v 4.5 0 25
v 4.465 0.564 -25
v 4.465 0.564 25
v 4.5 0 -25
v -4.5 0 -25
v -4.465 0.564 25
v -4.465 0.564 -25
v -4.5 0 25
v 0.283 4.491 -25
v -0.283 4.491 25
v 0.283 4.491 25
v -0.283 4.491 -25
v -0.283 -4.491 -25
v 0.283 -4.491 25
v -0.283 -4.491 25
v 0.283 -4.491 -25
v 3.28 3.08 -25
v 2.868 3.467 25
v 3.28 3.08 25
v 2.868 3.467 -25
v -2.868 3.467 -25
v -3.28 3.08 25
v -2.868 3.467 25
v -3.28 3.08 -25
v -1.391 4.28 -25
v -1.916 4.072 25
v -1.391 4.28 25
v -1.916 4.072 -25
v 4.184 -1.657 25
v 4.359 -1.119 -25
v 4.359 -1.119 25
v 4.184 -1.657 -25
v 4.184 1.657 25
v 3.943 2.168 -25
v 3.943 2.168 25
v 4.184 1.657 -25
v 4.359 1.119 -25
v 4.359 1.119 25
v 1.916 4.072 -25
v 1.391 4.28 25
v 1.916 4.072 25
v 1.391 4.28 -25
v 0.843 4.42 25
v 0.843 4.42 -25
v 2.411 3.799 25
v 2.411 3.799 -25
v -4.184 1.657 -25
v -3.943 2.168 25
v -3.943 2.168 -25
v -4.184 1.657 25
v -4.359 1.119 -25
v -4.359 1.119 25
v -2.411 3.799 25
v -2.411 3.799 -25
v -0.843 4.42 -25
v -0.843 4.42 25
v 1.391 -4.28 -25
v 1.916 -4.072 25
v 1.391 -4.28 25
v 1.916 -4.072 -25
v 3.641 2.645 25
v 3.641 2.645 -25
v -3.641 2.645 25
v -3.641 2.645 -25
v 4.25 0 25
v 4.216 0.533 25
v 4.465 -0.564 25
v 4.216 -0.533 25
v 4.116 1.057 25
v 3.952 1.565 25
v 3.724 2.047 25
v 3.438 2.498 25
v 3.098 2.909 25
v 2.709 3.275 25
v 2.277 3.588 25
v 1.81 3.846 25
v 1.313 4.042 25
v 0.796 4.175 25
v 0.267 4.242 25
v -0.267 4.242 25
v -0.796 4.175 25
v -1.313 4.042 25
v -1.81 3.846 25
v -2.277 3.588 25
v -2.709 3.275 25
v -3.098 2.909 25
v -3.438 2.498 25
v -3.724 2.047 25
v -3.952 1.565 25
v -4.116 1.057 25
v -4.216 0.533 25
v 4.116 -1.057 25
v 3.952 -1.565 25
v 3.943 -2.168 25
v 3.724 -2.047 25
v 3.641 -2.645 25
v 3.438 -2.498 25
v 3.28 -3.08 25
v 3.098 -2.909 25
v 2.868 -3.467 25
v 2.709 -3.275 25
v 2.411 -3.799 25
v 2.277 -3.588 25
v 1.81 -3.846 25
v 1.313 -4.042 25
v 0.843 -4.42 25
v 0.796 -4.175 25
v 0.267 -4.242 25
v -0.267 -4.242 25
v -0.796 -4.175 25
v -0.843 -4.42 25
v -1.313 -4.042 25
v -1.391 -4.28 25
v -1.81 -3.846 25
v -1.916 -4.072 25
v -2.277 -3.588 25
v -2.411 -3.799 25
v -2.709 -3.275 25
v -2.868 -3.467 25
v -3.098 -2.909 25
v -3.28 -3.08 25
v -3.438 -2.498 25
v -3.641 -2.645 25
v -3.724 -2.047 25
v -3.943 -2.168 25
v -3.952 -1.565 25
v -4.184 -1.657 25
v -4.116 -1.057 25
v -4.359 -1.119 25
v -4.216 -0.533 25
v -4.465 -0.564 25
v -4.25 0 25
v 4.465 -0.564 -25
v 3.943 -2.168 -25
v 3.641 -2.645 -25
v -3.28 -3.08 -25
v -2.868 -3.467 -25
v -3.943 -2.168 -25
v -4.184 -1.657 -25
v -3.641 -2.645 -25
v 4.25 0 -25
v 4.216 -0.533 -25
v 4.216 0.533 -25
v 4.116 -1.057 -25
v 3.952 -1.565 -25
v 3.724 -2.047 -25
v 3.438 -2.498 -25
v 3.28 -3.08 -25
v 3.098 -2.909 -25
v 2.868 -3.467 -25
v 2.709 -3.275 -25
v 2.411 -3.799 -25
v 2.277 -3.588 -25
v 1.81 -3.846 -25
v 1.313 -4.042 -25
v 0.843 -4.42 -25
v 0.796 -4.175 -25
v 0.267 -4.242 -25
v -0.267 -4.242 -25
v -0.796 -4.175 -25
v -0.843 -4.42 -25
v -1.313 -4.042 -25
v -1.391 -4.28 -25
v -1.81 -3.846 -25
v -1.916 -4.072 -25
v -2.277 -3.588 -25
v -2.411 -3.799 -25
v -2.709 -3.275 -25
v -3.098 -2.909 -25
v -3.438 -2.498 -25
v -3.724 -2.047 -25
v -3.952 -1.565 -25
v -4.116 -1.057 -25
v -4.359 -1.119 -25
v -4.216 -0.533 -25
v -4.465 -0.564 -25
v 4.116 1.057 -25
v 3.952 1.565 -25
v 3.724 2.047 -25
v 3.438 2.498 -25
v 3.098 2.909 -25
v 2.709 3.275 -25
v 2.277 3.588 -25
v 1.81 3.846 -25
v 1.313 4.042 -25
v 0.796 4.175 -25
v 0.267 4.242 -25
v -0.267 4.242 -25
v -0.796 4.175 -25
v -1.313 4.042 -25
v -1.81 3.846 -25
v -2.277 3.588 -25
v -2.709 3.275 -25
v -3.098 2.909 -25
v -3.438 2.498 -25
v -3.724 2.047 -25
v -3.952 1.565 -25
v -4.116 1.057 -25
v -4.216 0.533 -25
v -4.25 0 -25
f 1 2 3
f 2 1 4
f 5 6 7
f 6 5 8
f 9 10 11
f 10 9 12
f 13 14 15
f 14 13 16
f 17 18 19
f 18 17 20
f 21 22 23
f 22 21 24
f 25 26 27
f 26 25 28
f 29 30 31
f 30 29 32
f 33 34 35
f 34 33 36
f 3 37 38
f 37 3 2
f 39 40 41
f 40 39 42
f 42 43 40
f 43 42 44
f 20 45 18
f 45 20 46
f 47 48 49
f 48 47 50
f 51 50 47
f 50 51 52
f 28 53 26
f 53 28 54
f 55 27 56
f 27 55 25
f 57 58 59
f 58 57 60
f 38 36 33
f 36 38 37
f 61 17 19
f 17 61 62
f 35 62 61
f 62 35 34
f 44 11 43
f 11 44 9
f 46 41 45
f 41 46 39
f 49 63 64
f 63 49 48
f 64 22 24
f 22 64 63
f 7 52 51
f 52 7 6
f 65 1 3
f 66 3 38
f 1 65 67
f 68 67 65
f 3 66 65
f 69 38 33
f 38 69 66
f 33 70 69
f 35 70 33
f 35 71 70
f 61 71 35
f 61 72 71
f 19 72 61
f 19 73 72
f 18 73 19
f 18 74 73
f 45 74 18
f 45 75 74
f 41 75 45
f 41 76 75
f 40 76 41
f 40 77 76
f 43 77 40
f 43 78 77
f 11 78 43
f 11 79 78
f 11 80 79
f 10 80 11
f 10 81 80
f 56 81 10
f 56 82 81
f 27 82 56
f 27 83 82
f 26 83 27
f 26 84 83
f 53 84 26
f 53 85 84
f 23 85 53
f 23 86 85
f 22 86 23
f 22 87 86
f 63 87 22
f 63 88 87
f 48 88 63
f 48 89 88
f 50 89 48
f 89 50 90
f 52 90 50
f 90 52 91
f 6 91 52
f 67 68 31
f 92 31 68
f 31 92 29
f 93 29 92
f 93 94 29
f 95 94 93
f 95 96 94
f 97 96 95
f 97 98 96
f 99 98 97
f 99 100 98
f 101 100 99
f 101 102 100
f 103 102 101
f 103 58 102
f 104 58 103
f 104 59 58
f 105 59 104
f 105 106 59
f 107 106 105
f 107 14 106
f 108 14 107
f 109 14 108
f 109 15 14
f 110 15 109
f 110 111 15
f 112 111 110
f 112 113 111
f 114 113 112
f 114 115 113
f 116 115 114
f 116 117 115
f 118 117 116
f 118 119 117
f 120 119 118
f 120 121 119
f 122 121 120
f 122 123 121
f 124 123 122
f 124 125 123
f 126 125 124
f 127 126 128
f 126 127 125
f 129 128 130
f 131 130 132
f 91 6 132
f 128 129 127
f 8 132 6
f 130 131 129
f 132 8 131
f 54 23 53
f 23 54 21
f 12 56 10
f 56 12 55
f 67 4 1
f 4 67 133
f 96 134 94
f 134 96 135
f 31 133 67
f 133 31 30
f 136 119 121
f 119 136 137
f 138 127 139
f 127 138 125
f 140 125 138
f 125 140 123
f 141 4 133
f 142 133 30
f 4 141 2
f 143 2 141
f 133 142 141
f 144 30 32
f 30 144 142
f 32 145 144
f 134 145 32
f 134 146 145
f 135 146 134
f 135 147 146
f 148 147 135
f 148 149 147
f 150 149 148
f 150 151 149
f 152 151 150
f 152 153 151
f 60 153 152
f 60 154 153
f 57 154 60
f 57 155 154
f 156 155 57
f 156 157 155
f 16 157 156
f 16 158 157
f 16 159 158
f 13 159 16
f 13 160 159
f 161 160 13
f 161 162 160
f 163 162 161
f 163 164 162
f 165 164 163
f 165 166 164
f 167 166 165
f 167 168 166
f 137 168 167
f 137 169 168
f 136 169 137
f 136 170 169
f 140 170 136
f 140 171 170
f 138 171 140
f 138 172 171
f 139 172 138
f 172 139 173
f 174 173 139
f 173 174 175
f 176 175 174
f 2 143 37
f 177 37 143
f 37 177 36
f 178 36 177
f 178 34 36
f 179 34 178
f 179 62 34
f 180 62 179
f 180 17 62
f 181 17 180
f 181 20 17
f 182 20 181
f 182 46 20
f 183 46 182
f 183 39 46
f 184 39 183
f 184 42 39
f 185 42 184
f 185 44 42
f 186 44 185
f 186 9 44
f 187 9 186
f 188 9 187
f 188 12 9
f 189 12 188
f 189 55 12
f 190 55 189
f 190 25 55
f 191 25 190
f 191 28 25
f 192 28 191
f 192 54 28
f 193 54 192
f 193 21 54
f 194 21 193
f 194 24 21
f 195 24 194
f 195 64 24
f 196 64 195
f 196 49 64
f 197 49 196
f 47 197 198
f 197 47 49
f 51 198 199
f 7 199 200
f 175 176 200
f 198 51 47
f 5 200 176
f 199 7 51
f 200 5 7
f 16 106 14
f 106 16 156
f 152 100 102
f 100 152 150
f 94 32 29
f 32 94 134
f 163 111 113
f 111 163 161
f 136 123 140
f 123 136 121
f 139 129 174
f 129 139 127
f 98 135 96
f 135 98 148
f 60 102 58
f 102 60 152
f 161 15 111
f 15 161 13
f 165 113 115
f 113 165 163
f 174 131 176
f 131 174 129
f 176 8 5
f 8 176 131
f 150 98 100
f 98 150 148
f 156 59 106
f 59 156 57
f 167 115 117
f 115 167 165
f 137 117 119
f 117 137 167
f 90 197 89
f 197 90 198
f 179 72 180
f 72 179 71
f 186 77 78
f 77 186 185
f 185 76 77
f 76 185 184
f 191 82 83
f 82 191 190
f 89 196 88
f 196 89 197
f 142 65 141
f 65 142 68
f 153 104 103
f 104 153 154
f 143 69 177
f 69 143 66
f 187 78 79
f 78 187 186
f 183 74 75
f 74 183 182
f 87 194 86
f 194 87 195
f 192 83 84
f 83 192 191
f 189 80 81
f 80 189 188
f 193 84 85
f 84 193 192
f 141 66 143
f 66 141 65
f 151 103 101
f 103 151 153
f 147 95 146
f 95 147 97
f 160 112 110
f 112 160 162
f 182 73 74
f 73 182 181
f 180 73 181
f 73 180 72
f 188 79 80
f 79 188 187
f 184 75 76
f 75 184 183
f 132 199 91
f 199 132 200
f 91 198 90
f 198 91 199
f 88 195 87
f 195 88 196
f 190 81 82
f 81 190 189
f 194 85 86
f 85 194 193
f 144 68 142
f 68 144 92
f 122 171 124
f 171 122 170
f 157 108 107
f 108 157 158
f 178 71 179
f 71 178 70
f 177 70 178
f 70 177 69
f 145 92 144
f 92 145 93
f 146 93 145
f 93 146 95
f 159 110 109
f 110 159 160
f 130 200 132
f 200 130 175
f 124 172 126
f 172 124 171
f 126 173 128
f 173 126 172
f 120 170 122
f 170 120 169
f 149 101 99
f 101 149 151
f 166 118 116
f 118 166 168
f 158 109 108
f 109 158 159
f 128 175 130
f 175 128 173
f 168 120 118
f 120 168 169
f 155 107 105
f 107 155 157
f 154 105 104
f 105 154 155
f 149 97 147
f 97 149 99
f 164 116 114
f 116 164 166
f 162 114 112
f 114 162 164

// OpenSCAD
$fn = 50;


difference() {
	union() {
		translate(v = [0, 0, -25.0000000000]) {
			cylinder(h = 50, r = 4.5000000000);
		}
	}
	union() {
		translate(v = [0, 0, -100.0000000000]) {
			cylinder(h = 200, r = 4.2500000000);
		}
	}
}
